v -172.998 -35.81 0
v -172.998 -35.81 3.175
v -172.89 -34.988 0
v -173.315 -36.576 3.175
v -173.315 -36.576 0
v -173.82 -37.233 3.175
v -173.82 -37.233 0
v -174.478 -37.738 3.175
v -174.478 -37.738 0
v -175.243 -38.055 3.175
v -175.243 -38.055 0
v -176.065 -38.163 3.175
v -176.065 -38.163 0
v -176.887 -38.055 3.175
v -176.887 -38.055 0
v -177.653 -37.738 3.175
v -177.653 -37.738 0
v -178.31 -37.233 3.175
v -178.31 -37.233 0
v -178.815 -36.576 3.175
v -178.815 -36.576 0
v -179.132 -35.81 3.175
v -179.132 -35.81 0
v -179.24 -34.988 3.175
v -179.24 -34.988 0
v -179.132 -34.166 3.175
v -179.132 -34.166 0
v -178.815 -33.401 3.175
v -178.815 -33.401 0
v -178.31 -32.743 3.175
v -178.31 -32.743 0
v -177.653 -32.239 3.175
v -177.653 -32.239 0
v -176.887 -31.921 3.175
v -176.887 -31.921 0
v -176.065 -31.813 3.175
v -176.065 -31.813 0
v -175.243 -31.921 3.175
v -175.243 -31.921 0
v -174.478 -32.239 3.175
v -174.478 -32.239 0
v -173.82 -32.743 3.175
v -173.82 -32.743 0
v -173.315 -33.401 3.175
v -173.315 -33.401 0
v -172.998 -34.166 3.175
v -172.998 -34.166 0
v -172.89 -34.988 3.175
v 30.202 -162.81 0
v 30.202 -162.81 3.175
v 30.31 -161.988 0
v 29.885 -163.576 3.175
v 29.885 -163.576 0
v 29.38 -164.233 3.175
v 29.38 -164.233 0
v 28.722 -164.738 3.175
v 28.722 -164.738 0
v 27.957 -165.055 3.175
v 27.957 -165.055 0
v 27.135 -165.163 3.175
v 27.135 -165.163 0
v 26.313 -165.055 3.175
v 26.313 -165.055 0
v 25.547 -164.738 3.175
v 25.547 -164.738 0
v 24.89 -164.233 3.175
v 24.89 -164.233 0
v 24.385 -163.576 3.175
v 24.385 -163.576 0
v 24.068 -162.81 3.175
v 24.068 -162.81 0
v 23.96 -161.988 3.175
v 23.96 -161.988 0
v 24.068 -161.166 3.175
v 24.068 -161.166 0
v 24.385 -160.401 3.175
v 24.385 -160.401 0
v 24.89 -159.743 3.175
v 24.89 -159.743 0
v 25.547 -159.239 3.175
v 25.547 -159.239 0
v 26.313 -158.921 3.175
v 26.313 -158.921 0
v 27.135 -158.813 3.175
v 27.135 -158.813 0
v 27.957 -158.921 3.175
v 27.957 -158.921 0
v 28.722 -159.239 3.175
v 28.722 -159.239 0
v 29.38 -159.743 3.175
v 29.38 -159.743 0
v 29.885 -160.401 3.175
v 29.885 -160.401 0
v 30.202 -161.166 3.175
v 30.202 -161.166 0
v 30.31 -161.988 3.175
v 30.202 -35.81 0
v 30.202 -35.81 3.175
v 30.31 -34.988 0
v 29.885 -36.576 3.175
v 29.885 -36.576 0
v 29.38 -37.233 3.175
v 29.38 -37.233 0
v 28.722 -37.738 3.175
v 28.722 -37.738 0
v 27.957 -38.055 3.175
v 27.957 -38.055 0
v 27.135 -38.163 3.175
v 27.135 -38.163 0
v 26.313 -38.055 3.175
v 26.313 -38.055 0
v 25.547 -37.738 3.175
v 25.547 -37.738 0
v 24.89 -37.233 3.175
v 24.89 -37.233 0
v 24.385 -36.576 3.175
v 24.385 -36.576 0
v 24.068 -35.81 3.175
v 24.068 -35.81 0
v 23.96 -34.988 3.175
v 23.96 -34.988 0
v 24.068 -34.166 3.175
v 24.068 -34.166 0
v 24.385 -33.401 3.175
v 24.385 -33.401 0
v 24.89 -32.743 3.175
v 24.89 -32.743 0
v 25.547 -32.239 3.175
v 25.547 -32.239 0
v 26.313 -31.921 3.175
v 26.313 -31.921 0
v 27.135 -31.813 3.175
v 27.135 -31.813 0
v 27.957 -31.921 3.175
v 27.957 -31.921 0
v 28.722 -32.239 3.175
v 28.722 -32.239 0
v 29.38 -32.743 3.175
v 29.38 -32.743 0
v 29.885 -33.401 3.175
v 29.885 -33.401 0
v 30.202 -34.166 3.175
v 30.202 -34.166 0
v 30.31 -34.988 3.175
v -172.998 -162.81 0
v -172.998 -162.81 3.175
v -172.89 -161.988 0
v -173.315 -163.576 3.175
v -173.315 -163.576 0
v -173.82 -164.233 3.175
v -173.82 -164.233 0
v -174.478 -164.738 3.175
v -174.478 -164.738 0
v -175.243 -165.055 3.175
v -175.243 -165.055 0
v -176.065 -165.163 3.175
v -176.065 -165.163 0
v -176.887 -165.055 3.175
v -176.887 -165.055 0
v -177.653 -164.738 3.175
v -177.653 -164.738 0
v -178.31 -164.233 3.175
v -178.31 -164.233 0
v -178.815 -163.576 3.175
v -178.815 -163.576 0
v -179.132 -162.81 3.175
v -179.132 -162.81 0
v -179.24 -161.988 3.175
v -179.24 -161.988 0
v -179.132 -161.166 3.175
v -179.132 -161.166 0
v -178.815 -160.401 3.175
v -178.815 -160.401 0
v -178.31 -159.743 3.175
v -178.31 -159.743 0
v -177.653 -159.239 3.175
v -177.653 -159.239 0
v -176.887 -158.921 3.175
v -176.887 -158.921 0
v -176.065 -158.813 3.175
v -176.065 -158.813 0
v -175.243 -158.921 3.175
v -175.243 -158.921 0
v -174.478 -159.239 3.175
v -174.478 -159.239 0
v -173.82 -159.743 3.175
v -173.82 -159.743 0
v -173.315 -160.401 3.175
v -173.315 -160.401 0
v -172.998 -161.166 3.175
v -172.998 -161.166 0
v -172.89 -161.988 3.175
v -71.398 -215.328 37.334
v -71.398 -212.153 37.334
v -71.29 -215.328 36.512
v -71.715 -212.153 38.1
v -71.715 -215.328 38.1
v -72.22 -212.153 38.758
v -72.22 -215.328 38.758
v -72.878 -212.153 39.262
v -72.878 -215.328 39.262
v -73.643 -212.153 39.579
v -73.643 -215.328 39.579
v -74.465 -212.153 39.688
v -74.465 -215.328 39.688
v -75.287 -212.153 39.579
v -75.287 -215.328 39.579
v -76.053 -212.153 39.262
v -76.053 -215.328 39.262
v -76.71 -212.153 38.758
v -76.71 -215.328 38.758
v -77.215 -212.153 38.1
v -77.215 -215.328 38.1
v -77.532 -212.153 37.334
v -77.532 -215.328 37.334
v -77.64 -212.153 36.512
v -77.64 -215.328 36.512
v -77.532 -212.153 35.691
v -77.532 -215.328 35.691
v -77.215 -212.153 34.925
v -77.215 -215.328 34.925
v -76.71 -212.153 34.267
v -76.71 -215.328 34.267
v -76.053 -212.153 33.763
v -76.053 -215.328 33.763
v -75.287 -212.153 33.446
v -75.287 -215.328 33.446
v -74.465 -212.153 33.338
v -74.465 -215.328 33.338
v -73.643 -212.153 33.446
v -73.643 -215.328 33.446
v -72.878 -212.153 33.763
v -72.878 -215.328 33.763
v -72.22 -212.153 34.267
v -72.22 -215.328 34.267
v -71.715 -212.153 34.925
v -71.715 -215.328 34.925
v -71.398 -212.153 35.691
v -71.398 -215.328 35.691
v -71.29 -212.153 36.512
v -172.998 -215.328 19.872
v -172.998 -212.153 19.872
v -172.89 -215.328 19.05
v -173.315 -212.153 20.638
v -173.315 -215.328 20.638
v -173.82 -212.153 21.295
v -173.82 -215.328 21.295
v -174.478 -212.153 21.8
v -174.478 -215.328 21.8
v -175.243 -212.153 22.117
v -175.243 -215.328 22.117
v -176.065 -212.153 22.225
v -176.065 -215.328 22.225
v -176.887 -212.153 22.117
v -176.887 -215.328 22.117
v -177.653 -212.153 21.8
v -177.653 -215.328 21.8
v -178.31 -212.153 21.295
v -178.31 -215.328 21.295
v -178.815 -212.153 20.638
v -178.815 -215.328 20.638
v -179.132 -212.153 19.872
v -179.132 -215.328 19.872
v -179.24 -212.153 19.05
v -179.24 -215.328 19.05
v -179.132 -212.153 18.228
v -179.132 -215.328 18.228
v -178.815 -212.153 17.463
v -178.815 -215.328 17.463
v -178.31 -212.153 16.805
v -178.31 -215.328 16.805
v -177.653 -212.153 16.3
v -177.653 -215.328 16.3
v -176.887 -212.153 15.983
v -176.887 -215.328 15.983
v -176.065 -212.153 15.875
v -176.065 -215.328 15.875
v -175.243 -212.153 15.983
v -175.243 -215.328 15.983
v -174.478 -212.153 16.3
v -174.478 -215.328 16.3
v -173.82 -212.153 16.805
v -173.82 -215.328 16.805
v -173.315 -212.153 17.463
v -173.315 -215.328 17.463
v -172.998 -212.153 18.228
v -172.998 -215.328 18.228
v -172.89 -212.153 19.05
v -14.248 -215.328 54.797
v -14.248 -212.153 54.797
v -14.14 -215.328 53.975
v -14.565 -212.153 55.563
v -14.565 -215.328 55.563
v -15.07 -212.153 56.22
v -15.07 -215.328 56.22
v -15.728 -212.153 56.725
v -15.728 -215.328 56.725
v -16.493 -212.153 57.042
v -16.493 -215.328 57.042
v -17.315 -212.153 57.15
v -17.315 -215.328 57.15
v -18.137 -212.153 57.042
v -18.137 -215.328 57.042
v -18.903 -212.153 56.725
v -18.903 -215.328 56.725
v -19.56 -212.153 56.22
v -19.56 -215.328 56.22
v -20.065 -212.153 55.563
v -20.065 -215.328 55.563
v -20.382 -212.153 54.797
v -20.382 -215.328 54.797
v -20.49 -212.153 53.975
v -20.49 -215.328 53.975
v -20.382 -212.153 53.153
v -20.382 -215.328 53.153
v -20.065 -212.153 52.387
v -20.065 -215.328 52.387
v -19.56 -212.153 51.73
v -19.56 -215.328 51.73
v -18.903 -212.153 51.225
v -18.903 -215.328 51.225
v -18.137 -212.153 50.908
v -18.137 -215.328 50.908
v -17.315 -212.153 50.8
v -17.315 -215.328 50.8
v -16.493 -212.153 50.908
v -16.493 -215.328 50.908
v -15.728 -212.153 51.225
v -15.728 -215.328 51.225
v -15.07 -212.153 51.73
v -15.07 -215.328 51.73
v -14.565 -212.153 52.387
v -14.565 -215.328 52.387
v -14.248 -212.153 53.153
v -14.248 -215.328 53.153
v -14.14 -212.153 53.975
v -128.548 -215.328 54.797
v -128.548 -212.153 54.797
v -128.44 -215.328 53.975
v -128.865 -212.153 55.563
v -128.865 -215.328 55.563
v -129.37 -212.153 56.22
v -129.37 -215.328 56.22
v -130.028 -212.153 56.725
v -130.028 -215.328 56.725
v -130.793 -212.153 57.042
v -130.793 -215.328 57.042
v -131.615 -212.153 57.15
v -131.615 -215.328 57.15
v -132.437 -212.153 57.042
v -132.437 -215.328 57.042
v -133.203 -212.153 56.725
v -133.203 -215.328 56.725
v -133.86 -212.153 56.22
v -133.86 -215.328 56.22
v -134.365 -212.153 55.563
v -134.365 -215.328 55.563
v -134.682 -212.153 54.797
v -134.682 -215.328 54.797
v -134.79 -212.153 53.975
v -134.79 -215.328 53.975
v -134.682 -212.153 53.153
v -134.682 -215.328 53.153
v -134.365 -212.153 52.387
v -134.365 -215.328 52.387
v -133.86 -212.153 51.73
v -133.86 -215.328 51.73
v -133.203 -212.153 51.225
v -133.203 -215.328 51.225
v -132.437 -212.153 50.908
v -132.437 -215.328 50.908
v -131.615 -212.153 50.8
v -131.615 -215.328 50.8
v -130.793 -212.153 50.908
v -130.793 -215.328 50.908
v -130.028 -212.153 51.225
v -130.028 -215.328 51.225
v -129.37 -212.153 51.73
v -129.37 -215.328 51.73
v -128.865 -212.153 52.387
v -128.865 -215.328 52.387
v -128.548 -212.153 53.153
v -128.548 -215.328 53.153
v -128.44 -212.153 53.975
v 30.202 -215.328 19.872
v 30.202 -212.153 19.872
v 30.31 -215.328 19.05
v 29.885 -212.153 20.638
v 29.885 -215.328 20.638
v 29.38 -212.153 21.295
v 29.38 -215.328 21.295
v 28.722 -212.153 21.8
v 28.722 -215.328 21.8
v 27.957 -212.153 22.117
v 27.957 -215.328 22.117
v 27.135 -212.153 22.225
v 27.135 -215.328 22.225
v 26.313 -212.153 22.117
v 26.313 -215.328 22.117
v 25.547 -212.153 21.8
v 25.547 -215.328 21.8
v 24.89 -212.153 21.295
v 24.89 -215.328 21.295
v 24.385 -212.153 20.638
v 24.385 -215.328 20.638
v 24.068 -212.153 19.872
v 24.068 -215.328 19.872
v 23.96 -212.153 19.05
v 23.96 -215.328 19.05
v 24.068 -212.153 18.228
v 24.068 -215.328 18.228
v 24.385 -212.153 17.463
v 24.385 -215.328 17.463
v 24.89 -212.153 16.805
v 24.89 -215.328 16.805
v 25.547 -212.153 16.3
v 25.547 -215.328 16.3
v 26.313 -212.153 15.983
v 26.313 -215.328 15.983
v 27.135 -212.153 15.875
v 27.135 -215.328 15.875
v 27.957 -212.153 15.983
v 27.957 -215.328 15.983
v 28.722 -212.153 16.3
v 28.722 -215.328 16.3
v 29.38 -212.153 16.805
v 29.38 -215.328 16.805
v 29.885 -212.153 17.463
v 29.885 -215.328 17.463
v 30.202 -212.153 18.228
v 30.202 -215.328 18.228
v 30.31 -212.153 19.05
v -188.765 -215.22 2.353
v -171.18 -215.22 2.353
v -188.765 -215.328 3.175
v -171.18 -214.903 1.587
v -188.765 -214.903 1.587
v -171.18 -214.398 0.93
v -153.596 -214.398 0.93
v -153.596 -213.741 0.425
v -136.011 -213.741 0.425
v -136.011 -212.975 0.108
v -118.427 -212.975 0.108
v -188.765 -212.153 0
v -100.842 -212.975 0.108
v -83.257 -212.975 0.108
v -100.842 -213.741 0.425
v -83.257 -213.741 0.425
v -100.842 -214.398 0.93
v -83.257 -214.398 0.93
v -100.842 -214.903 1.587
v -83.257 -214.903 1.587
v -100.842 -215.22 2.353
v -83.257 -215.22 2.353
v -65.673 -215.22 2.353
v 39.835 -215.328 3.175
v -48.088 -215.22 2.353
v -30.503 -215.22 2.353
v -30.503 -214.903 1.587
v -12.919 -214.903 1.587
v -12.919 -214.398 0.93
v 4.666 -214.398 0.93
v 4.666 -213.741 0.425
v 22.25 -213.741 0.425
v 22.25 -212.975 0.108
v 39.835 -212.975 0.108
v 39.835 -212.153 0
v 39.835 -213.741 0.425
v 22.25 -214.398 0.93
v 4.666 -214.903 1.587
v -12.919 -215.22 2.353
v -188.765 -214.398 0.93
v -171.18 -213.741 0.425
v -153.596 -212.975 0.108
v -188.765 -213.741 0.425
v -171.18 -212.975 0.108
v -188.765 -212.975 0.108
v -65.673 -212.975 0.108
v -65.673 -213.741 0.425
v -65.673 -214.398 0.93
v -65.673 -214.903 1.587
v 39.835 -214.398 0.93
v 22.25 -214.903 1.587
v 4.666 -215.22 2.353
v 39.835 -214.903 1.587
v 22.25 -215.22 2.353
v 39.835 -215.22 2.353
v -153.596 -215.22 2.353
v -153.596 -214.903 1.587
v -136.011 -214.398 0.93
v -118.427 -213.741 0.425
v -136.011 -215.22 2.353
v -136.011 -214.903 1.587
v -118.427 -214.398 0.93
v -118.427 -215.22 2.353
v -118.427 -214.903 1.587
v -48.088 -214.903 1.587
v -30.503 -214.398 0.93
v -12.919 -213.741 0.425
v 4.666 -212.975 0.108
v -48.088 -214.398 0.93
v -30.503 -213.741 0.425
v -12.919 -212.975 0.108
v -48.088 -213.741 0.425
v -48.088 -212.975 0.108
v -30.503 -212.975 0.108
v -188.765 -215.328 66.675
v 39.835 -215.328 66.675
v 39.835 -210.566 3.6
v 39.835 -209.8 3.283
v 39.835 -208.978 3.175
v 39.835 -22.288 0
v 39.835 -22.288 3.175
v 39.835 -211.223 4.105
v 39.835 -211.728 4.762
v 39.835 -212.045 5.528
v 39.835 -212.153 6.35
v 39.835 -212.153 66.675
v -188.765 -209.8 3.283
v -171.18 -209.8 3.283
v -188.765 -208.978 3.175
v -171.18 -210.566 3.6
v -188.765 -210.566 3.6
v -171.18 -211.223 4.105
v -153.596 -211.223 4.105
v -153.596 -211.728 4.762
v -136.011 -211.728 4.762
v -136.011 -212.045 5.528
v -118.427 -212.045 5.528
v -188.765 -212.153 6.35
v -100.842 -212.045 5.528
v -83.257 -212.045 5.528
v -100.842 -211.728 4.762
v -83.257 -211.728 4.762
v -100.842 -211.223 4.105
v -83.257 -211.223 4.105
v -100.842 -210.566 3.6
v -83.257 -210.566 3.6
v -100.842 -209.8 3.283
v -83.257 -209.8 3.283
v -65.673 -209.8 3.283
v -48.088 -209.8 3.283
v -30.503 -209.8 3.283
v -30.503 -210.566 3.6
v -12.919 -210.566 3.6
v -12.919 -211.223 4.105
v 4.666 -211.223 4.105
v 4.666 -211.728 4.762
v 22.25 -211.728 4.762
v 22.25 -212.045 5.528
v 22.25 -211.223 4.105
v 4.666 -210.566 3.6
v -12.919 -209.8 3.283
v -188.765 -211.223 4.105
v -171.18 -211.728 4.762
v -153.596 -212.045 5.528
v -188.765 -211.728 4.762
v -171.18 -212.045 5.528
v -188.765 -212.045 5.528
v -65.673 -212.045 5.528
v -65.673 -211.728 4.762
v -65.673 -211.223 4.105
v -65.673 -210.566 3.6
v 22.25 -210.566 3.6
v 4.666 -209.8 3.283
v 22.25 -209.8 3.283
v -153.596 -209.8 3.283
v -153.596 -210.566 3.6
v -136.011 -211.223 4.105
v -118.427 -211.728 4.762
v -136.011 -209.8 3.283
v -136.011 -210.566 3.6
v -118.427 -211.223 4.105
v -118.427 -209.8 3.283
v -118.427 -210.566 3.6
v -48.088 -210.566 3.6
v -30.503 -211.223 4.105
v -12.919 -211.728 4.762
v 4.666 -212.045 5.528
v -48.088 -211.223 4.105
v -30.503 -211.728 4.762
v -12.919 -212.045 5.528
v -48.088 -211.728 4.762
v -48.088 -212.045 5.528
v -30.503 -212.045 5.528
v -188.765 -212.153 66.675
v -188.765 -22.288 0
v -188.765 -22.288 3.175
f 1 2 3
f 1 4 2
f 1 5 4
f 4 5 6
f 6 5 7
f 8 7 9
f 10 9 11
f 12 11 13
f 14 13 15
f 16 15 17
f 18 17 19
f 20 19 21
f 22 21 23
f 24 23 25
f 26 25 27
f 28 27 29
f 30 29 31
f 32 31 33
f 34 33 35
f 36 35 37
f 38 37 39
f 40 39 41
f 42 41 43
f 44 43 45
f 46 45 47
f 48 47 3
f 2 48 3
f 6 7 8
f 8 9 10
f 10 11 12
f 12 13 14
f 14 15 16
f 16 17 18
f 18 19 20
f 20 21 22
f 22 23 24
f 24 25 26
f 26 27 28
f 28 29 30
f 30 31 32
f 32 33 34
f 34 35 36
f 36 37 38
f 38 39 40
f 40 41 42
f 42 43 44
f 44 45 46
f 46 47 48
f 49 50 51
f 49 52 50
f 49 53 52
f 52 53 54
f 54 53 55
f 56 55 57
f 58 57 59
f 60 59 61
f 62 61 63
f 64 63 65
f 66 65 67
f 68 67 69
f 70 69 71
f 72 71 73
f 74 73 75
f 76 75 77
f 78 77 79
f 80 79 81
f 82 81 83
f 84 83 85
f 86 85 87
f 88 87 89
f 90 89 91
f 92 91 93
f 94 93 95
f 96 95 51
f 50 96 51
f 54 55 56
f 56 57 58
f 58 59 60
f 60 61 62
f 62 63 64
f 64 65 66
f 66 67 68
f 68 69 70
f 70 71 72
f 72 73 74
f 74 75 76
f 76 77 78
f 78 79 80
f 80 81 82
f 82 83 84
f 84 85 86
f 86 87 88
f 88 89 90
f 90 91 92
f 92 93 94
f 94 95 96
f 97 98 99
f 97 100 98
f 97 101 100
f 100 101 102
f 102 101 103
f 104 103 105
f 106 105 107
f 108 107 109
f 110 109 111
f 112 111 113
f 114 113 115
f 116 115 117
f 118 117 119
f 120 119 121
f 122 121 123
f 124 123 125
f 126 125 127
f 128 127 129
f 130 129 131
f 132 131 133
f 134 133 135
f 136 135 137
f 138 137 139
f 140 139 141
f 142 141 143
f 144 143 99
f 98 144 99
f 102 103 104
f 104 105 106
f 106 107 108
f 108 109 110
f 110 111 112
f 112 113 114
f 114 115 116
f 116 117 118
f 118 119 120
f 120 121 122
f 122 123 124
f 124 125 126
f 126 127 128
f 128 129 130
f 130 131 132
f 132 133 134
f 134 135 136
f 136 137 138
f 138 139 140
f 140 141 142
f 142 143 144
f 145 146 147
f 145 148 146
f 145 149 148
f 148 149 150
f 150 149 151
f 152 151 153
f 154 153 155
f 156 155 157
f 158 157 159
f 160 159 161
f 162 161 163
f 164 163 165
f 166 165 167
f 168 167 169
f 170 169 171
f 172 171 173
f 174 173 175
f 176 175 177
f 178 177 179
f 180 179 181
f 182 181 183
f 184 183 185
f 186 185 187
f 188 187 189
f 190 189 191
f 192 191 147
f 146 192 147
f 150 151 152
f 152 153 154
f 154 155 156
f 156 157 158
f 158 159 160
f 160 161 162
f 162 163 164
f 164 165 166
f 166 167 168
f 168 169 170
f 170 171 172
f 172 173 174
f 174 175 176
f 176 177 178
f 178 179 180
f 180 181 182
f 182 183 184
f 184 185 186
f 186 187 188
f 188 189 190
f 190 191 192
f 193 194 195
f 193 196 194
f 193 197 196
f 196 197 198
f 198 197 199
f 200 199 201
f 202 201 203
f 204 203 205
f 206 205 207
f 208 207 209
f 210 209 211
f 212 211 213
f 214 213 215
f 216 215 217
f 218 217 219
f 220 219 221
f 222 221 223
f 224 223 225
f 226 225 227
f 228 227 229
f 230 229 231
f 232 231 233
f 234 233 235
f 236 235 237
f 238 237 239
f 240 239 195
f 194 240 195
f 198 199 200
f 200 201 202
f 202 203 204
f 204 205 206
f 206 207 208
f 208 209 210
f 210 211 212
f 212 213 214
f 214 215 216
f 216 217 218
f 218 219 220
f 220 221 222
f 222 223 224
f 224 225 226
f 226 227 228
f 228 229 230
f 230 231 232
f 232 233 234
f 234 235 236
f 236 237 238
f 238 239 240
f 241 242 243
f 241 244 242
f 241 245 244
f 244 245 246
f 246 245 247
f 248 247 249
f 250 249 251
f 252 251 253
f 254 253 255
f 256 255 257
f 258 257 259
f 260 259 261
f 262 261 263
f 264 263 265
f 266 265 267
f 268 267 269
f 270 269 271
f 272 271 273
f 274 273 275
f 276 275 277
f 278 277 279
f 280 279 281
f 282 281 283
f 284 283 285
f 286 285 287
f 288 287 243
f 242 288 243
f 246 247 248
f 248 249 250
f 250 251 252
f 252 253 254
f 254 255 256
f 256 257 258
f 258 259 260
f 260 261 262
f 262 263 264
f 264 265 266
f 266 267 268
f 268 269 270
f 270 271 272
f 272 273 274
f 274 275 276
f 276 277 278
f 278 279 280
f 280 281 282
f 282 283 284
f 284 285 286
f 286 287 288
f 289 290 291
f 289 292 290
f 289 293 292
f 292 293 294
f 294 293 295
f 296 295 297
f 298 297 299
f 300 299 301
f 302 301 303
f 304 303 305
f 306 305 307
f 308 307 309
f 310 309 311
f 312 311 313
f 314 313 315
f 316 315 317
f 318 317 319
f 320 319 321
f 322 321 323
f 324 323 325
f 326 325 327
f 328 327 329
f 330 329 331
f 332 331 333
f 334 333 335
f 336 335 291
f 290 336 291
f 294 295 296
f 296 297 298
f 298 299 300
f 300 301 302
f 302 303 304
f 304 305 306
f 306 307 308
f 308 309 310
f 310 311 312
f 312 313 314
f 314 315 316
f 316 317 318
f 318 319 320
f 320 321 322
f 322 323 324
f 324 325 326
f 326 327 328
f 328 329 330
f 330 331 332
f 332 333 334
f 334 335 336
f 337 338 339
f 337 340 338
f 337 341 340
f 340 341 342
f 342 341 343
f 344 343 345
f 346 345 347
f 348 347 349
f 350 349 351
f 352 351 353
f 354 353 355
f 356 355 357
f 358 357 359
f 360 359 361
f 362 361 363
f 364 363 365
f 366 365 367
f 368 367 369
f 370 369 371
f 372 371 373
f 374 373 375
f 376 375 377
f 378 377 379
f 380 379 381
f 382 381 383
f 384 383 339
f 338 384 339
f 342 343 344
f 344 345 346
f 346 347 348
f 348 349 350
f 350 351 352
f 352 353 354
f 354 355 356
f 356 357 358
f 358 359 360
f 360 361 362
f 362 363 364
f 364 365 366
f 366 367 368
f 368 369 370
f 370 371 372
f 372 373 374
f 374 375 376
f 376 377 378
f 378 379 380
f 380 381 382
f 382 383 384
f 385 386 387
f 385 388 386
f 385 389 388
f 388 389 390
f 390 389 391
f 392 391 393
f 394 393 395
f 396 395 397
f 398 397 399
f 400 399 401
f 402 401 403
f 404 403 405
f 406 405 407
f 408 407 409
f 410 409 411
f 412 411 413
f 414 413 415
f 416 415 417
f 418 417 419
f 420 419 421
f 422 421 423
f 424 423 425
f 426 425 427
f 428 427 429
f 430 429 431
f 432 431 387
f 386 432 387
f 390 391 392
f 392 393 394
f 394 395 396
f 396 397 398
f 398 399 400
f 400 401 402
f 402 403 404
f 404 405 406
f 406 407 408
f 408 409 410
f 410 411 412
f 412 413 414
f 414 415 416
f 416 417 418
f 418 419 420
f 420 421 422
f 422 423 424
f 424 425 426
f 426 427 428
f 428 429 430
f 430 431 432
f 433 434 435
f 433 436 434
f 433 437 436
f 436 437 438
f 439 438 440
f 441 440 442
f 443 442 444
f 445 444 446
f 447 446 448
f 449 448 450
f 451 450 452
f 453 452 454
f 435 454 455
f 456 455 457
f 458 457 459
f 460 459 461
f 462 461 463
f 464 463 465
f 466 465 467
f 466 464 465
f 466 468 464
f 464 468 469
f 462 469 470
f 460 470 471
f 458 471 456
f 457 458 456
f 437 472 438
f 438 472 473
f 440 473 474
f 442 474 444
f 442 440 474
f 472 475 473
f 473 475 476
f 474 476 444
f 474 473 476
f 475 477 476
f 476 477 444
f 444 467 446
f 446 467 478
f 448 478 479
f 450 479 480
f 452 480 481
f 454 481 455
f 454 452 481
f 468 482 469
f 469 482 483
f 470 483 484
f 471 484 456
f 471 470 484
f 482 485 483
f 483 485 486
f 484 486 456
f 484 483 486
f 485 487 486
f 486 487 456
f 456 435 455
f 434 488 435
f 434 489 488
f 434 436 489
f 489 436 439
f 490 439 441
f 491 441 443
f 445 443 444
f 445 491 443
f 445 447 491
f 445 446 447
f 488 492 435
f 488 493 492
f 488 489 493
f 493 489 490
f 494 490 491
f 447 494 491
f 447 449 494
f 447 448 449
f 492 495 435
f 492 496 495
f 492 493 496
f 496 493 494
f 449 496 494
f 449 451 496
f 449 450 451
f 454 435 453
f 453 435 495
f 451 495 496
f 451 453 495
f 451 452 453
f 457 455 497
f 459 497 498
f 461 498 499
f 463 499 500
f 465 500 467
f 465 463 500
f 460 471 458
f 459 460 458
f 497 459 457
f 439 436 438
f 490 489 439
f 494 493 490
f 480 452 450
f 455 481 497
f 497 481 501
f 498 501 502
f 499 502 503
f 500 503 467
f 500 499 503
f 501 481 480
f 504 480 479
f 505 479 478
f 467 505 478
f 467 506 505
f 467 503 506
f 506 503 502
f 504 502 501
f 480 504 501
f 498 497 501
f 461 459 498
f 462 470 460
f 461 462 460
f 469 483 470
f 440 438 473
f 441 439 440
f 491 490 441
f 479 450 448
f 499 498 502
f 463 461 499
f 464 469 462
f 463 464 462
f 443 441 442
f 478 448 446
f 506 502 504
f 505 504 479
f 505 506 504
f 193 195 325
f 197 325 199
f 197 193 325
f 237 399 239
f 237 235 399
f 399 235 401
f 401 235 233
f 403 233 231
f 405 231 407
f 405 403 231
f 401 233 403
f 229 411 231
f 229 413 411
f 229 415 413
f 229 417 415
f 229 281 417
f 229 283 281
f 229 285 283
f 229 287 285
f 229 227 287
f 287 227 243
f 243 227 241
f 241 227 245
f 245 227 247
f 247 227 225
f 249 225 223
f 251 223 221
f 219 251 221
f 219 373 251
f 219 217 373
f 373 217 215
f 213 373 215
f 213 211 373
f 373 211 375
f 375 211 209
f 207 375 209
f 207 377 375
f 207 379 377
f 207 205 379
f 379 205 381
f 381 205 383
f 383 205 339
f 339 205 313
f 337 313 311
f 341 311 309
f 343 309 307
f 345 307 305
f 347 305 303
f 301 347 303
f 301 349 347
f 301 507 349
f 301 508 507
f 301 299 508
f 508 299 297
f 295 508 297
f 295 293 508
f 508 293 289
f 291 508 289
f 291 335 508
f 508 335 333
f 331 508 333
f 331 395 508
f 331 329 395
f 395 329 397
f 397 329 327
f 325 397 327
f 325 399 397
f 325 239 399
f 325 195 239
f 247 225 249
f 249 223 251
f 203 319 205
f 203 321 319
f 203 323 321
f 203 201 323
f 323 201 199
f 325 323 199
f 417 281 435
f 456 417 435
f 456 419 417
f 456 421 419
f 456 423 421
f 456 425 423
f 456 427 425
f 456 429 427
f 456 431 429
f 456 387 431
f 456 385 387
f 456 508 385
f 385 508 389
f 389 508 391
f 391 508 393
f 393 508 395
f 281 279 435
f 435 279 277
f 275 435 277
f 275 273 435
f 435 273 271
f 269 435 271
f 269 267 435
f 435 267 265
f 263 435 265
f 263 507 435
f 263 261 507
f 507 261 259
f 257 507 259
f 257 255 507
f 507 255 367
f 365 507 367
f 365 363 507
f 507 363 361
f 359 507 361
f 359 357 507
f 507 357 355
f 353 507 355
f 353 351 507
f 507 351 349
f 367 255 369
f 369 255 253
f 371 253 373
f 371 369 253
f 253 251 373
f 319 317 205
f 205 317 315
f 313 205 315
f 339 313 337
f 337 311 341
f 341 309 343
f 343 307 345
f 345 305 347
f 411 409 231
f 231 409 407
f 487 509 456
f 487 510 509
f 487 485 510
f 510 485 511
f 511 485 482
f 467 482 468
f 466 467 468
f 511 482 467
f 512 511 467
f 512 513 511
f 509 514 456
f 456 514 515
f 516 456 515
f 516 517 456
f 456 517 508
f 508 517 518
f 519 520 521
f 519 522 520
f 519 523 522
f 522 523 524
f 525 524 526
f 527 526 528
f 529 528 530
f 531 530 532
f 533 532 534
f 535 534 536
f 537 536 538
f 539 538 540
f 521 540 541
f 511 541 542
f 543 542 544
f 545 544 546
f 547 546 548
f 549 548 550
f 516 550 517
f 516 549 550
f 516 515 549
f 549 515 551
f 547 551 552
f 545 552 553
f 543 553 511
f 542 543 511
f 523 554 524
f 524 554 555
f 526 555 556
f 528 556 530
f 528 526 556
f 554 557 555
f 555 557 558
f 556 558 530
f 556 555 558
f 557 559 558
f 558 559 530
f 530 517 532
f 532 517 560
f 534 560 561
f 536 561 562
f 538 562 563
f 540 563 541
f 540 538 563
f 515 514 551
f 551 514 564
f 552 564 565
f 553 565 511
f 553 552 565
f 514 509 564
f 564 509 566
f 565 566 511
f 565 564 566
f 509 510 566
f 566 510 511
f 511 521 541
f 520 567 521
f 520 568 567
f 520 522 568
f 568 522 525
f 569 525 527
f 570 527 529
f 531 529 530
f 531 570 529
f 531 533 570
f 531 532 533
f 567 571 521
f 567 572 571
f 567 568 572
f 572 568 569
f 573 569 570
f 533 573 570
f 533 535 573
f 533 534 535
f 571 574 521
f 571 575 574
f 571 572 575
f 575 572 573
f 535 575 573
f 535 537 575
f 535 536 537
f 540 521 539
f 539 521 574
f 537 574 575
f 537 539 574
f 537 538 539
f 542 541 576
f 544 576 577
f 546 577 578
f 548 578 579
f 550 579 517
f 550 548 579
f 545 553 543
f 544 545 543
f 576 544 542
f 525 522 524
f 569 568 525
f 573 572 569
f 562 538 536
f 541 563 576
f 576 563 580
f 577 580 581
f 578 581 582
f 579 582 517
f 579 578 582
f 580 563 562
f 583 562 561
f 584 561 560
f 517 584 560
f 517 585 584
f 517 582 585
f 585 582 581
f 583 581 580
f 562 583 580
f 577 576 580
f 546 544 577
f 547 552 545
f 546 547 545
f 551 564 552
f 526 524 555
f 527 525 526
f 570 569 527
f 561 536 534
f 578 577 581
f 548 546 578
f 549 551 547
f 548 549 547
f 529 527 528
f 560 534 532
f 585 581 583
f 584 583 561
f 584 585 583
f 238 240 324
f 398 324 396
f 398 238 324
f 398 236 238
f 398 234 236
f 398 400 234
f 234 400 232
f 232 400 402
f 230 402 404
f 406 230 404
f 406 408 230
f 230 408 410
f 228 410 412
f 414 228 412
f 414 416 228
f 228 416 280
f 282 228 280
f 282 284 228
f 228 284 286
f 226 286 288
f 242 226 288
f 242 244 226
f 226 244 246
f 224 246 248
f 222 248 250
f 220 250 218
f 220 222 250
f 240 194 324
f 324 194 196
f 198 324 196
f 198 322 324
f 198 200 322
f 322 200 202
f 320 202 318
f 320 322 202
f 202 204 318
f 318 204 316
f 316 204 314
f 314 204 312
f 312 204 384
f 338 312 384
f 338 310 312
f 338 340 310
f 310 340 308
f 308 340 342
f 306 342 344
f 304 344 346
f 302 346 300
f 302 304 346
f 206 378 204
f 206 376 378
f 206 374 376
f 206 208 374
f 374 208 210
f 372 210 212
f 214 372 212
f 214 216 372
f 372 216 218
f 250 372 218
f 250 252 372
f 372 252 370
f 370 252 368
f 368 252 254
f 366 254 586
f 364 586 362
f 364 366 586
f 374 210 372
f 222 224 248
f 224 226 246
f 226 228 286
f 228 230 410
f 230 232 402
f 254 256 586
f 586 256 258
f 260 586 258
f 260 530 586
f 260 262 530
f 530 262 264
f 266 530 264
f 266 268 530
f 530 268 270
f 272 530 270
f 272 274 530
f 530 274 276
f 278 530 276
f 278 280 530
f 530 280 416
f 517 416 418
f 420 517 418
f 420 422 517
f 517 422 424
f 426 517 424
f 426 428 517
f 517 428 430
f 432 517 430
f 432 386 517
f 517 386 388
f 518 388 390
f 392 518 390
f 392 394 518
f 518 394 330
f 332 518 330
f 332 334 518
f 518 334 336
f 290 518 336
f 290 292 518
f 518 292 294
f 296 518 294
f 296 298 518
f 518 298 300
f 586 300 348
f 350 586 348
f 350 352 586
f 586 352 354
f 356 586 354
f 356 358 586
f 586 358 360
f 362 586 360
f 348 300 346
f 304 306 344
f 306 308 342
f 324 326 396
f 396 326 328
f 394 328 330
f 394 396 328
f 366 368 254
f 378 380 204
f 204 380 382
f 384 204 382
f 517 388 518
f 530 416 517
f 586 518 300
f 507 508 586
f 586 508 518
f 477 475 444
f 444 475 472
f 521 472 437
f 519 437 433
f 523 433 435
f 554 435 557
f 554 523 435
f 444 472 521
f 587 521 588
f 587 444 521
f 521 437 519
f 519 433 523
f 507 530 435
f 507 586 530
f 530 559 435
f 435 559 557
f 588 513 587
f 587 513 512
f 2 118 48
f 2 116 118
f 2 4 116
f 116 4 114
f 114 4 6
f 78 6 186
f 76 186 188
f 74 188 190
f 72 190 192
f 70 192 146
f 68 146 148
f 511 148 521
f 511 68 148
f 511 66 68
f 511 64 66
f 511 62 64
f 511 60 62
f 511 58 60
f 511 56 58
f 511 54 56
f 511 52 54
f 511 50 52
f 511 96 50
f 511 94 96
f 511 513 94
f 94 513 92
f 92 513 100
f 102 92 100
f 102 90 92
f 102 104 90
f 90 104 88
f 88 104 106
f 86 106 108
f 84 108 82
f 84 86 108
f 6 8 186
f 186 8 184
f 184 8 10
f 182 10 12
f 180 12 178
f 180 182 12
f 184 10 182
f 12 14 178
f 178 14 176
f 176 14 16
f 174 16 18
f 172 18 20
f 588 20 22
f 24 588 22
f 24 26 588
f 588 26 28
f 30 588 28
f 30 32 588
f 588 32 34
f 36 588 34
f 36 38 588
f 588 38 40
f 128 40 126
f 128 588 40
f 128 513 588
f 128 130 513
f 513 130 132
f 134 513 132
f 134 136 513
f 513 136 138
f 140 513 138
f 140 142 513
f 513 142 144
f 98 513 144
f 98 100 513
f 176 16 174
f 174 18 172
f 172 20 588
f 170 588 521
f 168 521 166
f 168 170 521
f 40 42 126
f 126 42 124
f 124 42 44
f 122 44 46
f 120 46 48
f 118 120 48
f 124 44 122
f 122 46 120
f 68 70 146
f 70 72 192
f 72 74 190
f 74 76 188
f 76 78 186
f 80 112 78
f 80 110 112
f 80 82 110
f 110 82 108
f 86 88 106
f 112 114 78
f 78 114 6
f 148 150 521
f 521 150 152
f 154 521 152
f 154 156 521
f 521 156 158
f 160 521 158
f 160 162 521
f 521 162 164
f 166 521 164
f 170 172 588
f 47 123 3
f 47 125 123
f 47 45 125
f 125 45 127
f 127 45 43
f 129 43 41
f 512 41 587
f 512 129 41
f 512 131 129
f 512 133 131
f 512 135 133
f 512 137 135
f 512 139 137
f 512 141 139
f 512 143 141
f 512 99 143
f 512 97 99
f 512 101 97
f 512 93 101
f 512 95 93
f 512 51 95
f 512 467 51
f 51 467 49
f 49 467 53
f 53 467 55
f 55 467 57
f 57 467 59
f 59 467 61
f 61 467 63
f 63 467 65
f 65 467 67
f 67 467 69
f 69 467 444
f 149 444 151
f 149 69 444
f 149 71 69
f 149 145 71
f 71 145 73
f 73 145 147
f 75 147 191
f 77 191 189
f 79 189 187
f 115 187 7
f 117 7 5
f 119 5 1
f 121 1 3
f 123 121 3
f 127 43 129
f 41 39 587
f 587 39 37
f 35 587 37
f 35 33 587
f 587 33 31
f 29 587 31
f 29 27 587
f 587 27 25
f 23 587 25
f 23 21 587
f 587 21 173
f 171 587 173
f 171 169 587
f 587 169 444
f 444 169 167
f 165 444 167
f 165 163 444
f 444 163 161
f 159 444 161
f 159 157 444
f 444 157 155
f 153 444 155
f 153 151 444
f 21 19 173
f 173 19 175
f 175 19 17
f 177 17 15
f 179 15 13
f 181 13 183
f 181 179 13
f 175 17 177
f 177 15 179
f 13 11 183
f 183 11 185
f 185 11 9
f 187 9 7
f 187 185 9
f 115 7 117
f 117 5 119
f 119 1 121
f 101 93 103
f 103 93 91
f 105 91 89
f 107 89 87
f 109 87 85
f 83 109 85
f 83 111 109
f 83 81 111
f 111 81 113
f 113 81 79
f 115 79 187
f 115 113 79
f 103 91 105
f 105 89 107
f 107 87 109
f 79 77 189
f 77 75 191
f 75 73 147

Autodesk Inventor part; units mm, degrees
ref_plane "YZ Plane" through (0, 0, 0) normal (1, 0, 0) x (0, 1, 0)
ref_plane "XZ Plane" through (0, 0, 0) normal (0, 1, 0) x (-1, 0, 0)
ref_plane "XY Plane" through (0, 0, 0) normal (0, 0, 1) x (1, 0, 0)
sketch "Sketch1" plane through (0, 0, 0) normal (0, 0, 1) x (1, 0, 0)
  line L0 (39.835, -215.3282) -> (-188.765, -215.3282)
  line L1 (-188.765, -215.3282) -> (-188.765, -22.2882)
  line L2 (-188.765, -22.2882) -> (39.835, -22.2882)
  line L3 (39.835, -22.2882) -> (39.835, -215.3282)
  point P0 (0, 0)
  dimension "d0" = 228.6
  dimension "d1" = 193.04
extrude "Extrusion1" add sketch "Sketch1" along normal blind 3.175
sketch "Sketch2" plane through (0, 0, 3.175) normal (0, 0, 1) x (1, 0, 0)
  line L0 (-188.765, -215.3282) -> (39.835, -215.3282)
  line L1 (39.835, -215.3282) -> (39.835, -212.1532)
  line L2 (39.835, -212.1532) -> (-188.765, -212.1532)
  line L3 (-188.765, -212.1532) -> (-188.765, -215.3282)
  point P0 (0, 0)
  dimension "d4" = 228.6
  dimension "d5" = 3.175
extrude "Extrusion2" add sketch "Sketch2" along normal blind 63.5
fillet "Fillet1" radius 3.175 2 edges at (-74.465, -212.1532, 3.175) (-74.465, -215.3282, 0)
sketch "Sketch3" plane through (-188.765, -212.1532, 66.675) normal (0, 1, 0) x (1, 0, 0)
  line L0 (0, 60.325) -> (228.6, 60.325) projected
  line L1 (0, 60.325) -> (0, 0) projected
  line L2 (0, 0) -> (228.6, 0) projected
  line L3 (228.6, 60.325) -> (228.6, 0) projected
  circle A0 centre (12.7, 47.625) radius 3.175
  circle A1 centre (114.3, 30.1625) radius 3.175
  circle A2 centre (215.9, 47.625) radius 3.175
  circle A3 centre (57.15, 12.7) radius 3.175
  circle A4 centre (171.45, 12.7) radius 3.175
  point P0 (188.765, 66.675)
  dimension "d9" = 6.35
  dimension "d10" = 6.35
  dimension "d11" = 6.35
  dimension "d12" = 6.35
  dimension "d13" = 6.35
  dimension "d14" = 12.7
  dimension "d15" = 12.7
  dimension "d16" = 12.7
  dimension "d17" = 12.7
  dimension "d18" = 114.3
  dimension "d19" = 228.6
  dimension "d20" = 57.15
  dimension "d21" = 12.7
  dimension "d22" = 12.7
  dimension "d23" = 57.15
  dimension "d24" = 30.1625
  dimension "d25" = 60.325
extrude "Extrusion3" cut sketch "Sketch3" against normal blind 63.5 contours A0 | A1 | A2 | A3 | A4
sketch "Sketch4" plane through (0, 0, 3.175) normal (0, 0, 1) x (1, 0, 0)
  line L0 (39.835, -22.2882) -> (39.835, -208.9782) projected
  line L1 (-188.765, -22.2882) -> (39.835, -22.2882) projected
  line L2 (-188.765, -208.9782) -> (-188.765, -22.2882) projected
  circle A0 centre (-176.065, -34.9882) radius 3.175
  circle A1 centre (27.135, -34.9882) radius 3.175
  circle A2 centre (-176.065, -161.9882) radius 3.175
  circle A3 centre (27.135, -161.9882) radius 3.175
  point P0 (0, 0)
  dimension "d28" = 6.35
  dimension "d29" = 6.35
  dimension "d30" = 12.7
  dimension "d31" = 12.7
  dimension "d32" = 12.7
  dimension "d33" = 12.7
  dimension "d34" = 6.35
  dimension "d35" = 6.35
  dimension "d36" = 12.7
  dimension "d37" = 12.7
  dimension "d38" = 127
  dimension "d39" = 127
extrude "Extrusion4" cut sketch "Sketch4" against normal blind 63.5
equation "\"d18\" = 0.5 * d19"
equation "\"d20\" = 0.25 * d19"
equation "\"d22\" = d21"
equation "\"d23\" = d20"
equation "\"d24\" = 0.5 * d25"
equation "\"d37\" = d36"
equation "\"d39\" = d38"
properties part number "PowerDistributionStandmount"
